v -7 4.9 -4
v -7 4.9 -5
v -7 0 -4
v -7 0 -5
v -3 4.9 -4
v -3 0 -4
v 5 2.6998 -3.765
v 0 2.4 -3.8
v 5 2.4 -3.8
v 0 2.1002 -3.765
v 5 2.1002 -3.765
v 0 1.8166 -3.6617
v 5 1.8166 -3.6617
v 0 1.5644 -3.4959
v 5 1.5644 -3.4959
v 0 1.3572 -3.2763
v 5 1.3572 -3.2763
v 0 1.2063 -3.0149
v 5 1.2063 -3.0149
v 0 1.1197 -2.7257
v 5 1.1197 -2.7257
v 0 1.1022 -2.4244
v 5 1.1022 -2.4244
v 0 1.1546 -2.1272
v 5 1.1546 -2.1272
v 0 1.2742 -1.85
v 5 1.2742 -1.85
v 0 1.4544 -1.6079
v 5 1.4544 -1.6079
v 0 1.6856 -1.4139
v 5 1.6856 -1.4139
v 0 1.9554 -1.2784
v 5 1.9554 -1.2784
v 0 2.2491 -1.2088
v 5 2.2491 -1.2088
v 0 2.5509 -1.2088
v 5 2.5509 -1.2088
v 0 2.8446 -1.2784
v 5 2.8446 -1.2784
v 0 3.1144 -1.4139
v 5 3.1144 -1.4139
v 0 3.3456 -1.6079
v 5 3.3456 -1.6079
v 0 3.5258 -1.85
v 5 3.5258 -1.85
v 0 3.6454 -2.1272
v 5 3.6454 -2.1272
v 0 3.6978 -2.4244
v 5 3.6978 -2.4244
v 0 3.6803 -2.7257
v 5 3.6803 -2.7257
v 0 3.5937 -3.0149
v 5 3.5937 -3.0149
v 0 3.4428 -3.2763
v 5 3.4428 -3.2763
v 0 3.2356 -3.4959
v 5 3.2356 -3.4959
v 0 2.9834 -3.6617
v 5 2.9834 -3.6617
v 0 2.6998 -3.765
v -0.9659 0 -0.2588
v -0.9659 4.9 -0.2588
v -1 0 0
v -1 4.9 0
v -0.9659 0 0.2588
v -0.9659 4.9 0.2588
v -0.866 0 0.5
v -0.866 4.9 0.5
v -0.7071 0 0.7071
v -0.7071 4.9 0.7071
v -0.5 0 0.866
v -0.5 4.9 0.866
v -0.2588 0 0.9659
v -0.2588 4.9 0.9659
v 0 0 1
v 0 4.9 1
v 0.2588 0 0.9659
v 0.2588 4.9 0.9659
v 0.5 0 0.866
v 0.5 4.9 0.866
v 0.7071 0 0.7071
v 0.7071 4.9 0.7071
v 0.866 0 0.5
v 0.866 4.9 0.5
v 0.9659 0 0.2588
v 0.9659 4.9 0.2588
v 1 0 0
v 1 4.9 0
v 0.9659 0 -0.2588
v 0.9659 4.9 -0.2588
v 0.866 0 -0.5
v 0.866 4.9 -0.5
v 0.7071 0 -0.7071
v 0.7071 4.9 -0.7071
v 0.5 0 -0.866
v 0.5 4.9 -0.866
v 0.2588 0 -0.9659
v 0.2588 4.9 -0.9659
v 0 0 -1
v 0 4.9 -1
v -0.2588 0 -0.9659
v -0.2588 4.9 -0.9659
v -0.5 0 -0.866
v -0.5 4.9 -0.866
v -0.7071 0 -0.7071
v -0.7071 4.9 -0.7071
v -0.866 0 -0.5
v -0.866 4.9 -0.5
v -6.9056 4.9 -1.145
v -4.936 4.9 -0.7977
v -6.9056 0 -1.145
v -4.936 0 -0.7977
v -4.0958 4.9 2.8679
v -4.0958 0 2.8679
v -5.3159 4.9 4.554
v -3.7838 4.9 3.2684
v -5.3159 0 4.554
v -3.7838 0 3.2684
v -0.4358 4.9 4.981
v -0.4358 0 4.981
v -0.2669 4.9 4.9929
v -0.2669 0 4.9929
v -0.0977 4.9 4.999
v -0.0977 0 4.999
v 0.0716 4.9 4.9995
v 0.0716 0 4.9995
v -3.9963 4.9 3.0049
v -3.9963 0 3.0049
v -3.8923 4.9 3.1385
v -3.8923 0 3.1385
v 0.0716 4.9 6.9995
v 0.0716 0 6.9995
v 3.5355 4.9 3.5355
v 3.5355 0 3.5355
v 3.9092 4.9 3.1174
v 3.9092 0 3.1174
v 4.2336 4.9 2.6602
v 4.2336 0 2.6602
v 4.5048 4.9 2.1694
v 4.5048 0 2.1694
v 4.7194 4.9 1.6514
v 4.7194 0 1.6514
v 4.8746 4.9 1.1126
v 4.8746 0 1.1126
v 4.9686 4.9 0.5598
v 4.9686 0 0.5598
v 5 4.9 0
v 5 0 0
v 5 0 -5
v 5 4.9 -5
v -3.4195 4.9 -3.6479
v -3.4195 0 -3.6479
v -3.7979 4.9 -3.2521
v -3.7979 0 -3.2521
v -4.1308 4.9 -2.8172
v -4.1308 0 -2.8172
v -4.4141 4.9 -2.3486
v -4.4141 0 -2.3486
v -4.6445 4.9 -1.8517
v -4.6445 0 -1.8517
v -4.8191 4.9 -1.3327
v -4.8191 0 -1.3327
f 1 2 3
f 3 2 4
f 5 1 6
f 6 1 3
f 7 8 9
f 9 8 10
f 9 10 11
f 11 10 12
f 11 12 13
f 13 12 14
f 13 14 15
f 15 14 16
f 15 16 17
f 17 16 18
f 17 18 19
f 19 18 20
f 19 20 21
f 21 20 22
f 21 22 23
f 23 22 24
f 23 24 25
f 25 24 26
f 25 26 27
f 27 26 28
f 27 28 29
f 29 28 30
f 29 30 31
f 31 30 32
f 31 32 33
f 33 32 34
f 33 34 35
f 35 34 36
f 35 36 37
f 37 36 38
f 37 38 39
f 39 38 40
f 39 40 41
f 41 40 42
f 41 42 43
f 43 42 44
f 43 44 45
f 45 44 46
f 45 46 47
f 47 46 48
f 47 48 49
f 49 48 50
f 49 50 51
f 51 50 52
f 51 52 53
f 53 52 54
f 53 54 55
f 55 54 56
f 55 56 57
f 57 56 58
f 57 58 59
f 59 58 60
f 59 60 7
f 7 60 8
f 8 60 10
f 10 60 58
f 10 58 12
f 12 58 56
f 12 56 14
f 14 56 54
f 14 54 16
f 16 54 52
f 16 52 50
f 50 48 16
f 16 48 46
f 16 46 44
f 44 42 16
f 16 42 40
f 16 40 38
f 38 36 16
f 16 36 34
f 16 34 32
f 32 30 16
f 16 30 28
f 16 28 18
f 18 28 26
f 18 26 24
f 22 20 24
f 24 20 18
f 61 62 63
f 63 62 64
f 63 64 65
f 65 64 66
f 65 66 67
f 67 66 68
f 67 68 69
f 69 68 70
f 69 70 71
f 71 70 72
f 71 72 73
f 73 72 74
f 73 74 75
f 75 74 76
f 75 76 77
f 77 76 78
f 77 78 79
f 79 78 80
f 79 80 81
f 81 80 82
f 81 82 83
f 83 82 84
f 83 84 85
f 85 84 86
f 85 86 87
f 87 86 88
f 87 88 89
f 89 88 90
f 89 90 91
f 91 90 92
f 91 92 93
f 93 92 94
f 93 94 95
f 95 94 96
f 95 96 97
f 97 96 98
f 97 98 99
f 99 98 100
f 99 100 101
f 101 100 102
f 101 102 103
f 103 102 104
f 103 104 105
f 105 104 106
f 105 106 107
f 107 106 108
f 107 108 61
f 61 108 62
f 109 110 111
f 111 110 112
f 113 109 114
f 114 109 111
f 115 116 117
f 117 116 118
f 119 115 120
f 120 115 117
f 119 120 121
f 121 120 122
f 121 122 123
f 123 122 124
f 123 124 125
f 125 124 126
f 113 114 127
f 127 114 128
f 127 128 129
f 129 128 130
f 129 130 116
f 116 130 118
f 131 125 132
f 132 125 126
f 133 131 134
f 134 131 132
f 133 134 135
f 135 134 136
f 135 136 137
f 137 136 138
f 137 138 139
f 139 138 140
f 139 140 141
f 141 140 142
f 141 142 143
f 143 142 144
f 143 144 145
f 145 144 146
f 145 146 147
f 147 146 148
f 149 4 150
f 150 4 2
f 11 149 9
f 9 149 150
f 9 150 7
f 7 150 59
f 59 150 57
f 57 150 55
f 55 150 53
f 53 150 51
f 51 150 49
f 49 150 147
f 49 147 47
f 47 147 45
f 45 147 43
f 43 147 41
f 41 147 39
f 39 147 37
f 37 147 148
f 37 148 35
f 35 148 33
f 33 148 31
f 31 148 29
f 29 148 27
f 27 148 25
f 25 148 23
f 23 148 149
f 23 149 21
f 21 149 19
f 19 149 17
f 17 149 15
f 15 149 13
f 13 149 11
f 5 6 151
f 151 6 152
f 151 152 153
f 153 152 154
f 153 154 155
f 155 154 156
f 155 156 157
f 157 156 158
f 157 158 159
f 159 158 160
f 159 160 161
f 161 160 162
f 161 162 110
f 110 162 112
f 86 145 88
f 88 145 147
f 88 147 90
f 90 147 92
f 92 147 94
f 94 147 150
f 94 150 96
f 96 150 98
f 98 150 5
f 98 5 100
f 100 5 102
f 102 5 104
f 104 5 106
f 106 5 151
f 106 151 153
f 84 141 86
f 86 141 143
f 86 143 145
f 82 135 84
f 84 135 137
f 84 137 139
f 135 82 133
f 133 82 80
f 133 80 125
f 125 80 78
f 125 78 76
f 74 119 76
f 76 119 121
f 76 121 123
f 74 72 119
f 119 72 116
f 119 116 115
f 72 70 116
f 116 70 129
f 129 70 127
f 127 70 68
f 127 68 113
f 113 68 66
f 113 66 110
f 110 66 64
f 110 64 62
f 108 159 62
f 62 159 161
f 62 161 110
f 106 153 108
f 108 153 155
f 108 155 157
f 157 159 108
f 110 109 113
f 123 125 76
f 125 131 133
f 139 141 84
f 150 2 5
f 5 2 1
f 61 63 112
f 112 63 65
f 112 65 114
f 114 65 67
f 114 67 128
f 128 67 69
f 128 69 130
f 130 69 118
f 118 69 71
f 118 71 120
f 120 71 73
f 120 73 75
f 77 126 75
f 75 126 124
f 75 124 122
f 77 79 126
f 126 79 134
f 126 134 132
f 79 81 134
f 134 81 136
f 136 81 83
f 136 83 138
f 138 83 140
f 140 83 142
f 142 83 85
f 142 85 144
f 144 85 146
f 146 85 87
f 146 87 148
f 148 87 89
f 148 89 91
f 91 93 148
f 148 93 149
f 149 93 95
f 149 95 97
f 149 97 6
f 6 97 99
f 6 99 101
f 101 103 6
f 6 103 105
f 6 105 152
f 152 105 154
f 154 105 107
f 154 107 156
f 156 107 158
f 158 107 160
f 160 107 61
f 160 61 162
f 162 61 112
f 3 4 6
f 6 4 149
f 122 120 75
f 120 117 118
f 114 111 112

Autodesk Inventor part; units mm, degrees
ref_plane "YZ Plane" through (0, 0, 0) normal (1, 0, 0) x (0, 1, 0)
ref_plane "XZ Plane" through (0, 0, 0) normal (0, 1, 0) x (-1, 0, 0)
ref_plane "XY Plane" through (0, 0, 0) normal (0, 0, 1) x (1, 0, 0)
sketch "スケッチ1" plane through (0, 0, 0) normal (0, 1, 0) x (-1, 0, 0)
  arc A0 (0, -5) -> (-5, 0) centre (0, 0) ccw
  line L0 (0, -5) -> (-5, -5)
  line L1 (0, -5) -> (5, -5) construction
  line L2 (-5, -5) -> (-5, 0)
  dimension "d1" = 5
  dimension "d2" = 5
  dimension "d3" = 180
  dimension "d4" = 5
extrude "押し出し1" add sketch "スケッチ1" along normal blind 4.9
sketch "スケッチ2" plane through (0, 4.9, 0) normal (0, 1, 0) x (1, 0, 0)
  arc A0 (0, 5) -> (5, 0) centre (0, 0) ccw projected
  line L0 (0.0716, -4.9995) -> (0.0716, -6.9995)
  line L1 (0.0716, -6.9995) -> (3.5355, -3.5355)
  line L2 (0.0716, -6.9995) -> (4.9704, -6.9995) construction
  line L3 (0.0716, -4.9995) -> (3.5355, -3.5355)
  dimension "d7" = 2
  dimension "d8" = 45
extrude "押し出し2" add sketch "スケッチ2" against normal blind 4.9 contours A0 L1 L0
pattern_circular "円形状パターン1" count 3 over 100 about axis through (0, 0, 0) along (0, -1, 0) of "押し出し2"
sketch "スケッチ3" plane through (0, 4.9, 0) normal (0, 1, 0) x (1, 0, 0)
  point P0 (0, 0)
  point P1 (0, 0)
hole "穴1" at (0, 4.9, 0) direction (0, -1, 0) diameter 2 end through all
sketch "スケッチ4" plane through (5, 0, 0) normal (1, 0, 0) x (0, 0, -1)
  line L0 (0, 4.9) -> (5, 4.9) projected
  line L1 (5, 0) -> (5, 4.9) projected
  point P0 (0, 0)
  point P1 (2.5, 2.4)
  dimension "d28" = 2.5
  dimension "d29" = 2.5
hole "穴2" at (5, 2.4, -2.5) direction (-1, 0, 0) diameter 2.6 depth 5
sketch "スケッチ5" plane through (0, 4.9, 0) normal (0, 1, 0) x (1, 0, 0)
  point P0 (0, 0)
sketch "スケッチ7" plane through (0, 4.9, 0) normal (0, 1, 0) x (1, 0, 0)
  arc A0 (0, 5) -> (-4.936, 0.7977) centre (0, 0) ccw projected
  line L0 (0, 5) -> (-7, 5)
  line L1 (-7, 5) -> (-7, 4)
  line L2 (-7, 4) -> (-3, 4)
  line L3 (-3, 4) -> (0, 5)
  dimension "d35" = 7
  dimension "d36" = 1
extrude "押し出し4" add sketch "スケッチ7" against normal blind 4.9 contours A0 L2 L1 L0
equation "\"d9\" = atumi"
equation "\"d37\" = atumi"
equation "\"atumi\" = 4.9"
properties part number "exp_latch_rod_rev0"
